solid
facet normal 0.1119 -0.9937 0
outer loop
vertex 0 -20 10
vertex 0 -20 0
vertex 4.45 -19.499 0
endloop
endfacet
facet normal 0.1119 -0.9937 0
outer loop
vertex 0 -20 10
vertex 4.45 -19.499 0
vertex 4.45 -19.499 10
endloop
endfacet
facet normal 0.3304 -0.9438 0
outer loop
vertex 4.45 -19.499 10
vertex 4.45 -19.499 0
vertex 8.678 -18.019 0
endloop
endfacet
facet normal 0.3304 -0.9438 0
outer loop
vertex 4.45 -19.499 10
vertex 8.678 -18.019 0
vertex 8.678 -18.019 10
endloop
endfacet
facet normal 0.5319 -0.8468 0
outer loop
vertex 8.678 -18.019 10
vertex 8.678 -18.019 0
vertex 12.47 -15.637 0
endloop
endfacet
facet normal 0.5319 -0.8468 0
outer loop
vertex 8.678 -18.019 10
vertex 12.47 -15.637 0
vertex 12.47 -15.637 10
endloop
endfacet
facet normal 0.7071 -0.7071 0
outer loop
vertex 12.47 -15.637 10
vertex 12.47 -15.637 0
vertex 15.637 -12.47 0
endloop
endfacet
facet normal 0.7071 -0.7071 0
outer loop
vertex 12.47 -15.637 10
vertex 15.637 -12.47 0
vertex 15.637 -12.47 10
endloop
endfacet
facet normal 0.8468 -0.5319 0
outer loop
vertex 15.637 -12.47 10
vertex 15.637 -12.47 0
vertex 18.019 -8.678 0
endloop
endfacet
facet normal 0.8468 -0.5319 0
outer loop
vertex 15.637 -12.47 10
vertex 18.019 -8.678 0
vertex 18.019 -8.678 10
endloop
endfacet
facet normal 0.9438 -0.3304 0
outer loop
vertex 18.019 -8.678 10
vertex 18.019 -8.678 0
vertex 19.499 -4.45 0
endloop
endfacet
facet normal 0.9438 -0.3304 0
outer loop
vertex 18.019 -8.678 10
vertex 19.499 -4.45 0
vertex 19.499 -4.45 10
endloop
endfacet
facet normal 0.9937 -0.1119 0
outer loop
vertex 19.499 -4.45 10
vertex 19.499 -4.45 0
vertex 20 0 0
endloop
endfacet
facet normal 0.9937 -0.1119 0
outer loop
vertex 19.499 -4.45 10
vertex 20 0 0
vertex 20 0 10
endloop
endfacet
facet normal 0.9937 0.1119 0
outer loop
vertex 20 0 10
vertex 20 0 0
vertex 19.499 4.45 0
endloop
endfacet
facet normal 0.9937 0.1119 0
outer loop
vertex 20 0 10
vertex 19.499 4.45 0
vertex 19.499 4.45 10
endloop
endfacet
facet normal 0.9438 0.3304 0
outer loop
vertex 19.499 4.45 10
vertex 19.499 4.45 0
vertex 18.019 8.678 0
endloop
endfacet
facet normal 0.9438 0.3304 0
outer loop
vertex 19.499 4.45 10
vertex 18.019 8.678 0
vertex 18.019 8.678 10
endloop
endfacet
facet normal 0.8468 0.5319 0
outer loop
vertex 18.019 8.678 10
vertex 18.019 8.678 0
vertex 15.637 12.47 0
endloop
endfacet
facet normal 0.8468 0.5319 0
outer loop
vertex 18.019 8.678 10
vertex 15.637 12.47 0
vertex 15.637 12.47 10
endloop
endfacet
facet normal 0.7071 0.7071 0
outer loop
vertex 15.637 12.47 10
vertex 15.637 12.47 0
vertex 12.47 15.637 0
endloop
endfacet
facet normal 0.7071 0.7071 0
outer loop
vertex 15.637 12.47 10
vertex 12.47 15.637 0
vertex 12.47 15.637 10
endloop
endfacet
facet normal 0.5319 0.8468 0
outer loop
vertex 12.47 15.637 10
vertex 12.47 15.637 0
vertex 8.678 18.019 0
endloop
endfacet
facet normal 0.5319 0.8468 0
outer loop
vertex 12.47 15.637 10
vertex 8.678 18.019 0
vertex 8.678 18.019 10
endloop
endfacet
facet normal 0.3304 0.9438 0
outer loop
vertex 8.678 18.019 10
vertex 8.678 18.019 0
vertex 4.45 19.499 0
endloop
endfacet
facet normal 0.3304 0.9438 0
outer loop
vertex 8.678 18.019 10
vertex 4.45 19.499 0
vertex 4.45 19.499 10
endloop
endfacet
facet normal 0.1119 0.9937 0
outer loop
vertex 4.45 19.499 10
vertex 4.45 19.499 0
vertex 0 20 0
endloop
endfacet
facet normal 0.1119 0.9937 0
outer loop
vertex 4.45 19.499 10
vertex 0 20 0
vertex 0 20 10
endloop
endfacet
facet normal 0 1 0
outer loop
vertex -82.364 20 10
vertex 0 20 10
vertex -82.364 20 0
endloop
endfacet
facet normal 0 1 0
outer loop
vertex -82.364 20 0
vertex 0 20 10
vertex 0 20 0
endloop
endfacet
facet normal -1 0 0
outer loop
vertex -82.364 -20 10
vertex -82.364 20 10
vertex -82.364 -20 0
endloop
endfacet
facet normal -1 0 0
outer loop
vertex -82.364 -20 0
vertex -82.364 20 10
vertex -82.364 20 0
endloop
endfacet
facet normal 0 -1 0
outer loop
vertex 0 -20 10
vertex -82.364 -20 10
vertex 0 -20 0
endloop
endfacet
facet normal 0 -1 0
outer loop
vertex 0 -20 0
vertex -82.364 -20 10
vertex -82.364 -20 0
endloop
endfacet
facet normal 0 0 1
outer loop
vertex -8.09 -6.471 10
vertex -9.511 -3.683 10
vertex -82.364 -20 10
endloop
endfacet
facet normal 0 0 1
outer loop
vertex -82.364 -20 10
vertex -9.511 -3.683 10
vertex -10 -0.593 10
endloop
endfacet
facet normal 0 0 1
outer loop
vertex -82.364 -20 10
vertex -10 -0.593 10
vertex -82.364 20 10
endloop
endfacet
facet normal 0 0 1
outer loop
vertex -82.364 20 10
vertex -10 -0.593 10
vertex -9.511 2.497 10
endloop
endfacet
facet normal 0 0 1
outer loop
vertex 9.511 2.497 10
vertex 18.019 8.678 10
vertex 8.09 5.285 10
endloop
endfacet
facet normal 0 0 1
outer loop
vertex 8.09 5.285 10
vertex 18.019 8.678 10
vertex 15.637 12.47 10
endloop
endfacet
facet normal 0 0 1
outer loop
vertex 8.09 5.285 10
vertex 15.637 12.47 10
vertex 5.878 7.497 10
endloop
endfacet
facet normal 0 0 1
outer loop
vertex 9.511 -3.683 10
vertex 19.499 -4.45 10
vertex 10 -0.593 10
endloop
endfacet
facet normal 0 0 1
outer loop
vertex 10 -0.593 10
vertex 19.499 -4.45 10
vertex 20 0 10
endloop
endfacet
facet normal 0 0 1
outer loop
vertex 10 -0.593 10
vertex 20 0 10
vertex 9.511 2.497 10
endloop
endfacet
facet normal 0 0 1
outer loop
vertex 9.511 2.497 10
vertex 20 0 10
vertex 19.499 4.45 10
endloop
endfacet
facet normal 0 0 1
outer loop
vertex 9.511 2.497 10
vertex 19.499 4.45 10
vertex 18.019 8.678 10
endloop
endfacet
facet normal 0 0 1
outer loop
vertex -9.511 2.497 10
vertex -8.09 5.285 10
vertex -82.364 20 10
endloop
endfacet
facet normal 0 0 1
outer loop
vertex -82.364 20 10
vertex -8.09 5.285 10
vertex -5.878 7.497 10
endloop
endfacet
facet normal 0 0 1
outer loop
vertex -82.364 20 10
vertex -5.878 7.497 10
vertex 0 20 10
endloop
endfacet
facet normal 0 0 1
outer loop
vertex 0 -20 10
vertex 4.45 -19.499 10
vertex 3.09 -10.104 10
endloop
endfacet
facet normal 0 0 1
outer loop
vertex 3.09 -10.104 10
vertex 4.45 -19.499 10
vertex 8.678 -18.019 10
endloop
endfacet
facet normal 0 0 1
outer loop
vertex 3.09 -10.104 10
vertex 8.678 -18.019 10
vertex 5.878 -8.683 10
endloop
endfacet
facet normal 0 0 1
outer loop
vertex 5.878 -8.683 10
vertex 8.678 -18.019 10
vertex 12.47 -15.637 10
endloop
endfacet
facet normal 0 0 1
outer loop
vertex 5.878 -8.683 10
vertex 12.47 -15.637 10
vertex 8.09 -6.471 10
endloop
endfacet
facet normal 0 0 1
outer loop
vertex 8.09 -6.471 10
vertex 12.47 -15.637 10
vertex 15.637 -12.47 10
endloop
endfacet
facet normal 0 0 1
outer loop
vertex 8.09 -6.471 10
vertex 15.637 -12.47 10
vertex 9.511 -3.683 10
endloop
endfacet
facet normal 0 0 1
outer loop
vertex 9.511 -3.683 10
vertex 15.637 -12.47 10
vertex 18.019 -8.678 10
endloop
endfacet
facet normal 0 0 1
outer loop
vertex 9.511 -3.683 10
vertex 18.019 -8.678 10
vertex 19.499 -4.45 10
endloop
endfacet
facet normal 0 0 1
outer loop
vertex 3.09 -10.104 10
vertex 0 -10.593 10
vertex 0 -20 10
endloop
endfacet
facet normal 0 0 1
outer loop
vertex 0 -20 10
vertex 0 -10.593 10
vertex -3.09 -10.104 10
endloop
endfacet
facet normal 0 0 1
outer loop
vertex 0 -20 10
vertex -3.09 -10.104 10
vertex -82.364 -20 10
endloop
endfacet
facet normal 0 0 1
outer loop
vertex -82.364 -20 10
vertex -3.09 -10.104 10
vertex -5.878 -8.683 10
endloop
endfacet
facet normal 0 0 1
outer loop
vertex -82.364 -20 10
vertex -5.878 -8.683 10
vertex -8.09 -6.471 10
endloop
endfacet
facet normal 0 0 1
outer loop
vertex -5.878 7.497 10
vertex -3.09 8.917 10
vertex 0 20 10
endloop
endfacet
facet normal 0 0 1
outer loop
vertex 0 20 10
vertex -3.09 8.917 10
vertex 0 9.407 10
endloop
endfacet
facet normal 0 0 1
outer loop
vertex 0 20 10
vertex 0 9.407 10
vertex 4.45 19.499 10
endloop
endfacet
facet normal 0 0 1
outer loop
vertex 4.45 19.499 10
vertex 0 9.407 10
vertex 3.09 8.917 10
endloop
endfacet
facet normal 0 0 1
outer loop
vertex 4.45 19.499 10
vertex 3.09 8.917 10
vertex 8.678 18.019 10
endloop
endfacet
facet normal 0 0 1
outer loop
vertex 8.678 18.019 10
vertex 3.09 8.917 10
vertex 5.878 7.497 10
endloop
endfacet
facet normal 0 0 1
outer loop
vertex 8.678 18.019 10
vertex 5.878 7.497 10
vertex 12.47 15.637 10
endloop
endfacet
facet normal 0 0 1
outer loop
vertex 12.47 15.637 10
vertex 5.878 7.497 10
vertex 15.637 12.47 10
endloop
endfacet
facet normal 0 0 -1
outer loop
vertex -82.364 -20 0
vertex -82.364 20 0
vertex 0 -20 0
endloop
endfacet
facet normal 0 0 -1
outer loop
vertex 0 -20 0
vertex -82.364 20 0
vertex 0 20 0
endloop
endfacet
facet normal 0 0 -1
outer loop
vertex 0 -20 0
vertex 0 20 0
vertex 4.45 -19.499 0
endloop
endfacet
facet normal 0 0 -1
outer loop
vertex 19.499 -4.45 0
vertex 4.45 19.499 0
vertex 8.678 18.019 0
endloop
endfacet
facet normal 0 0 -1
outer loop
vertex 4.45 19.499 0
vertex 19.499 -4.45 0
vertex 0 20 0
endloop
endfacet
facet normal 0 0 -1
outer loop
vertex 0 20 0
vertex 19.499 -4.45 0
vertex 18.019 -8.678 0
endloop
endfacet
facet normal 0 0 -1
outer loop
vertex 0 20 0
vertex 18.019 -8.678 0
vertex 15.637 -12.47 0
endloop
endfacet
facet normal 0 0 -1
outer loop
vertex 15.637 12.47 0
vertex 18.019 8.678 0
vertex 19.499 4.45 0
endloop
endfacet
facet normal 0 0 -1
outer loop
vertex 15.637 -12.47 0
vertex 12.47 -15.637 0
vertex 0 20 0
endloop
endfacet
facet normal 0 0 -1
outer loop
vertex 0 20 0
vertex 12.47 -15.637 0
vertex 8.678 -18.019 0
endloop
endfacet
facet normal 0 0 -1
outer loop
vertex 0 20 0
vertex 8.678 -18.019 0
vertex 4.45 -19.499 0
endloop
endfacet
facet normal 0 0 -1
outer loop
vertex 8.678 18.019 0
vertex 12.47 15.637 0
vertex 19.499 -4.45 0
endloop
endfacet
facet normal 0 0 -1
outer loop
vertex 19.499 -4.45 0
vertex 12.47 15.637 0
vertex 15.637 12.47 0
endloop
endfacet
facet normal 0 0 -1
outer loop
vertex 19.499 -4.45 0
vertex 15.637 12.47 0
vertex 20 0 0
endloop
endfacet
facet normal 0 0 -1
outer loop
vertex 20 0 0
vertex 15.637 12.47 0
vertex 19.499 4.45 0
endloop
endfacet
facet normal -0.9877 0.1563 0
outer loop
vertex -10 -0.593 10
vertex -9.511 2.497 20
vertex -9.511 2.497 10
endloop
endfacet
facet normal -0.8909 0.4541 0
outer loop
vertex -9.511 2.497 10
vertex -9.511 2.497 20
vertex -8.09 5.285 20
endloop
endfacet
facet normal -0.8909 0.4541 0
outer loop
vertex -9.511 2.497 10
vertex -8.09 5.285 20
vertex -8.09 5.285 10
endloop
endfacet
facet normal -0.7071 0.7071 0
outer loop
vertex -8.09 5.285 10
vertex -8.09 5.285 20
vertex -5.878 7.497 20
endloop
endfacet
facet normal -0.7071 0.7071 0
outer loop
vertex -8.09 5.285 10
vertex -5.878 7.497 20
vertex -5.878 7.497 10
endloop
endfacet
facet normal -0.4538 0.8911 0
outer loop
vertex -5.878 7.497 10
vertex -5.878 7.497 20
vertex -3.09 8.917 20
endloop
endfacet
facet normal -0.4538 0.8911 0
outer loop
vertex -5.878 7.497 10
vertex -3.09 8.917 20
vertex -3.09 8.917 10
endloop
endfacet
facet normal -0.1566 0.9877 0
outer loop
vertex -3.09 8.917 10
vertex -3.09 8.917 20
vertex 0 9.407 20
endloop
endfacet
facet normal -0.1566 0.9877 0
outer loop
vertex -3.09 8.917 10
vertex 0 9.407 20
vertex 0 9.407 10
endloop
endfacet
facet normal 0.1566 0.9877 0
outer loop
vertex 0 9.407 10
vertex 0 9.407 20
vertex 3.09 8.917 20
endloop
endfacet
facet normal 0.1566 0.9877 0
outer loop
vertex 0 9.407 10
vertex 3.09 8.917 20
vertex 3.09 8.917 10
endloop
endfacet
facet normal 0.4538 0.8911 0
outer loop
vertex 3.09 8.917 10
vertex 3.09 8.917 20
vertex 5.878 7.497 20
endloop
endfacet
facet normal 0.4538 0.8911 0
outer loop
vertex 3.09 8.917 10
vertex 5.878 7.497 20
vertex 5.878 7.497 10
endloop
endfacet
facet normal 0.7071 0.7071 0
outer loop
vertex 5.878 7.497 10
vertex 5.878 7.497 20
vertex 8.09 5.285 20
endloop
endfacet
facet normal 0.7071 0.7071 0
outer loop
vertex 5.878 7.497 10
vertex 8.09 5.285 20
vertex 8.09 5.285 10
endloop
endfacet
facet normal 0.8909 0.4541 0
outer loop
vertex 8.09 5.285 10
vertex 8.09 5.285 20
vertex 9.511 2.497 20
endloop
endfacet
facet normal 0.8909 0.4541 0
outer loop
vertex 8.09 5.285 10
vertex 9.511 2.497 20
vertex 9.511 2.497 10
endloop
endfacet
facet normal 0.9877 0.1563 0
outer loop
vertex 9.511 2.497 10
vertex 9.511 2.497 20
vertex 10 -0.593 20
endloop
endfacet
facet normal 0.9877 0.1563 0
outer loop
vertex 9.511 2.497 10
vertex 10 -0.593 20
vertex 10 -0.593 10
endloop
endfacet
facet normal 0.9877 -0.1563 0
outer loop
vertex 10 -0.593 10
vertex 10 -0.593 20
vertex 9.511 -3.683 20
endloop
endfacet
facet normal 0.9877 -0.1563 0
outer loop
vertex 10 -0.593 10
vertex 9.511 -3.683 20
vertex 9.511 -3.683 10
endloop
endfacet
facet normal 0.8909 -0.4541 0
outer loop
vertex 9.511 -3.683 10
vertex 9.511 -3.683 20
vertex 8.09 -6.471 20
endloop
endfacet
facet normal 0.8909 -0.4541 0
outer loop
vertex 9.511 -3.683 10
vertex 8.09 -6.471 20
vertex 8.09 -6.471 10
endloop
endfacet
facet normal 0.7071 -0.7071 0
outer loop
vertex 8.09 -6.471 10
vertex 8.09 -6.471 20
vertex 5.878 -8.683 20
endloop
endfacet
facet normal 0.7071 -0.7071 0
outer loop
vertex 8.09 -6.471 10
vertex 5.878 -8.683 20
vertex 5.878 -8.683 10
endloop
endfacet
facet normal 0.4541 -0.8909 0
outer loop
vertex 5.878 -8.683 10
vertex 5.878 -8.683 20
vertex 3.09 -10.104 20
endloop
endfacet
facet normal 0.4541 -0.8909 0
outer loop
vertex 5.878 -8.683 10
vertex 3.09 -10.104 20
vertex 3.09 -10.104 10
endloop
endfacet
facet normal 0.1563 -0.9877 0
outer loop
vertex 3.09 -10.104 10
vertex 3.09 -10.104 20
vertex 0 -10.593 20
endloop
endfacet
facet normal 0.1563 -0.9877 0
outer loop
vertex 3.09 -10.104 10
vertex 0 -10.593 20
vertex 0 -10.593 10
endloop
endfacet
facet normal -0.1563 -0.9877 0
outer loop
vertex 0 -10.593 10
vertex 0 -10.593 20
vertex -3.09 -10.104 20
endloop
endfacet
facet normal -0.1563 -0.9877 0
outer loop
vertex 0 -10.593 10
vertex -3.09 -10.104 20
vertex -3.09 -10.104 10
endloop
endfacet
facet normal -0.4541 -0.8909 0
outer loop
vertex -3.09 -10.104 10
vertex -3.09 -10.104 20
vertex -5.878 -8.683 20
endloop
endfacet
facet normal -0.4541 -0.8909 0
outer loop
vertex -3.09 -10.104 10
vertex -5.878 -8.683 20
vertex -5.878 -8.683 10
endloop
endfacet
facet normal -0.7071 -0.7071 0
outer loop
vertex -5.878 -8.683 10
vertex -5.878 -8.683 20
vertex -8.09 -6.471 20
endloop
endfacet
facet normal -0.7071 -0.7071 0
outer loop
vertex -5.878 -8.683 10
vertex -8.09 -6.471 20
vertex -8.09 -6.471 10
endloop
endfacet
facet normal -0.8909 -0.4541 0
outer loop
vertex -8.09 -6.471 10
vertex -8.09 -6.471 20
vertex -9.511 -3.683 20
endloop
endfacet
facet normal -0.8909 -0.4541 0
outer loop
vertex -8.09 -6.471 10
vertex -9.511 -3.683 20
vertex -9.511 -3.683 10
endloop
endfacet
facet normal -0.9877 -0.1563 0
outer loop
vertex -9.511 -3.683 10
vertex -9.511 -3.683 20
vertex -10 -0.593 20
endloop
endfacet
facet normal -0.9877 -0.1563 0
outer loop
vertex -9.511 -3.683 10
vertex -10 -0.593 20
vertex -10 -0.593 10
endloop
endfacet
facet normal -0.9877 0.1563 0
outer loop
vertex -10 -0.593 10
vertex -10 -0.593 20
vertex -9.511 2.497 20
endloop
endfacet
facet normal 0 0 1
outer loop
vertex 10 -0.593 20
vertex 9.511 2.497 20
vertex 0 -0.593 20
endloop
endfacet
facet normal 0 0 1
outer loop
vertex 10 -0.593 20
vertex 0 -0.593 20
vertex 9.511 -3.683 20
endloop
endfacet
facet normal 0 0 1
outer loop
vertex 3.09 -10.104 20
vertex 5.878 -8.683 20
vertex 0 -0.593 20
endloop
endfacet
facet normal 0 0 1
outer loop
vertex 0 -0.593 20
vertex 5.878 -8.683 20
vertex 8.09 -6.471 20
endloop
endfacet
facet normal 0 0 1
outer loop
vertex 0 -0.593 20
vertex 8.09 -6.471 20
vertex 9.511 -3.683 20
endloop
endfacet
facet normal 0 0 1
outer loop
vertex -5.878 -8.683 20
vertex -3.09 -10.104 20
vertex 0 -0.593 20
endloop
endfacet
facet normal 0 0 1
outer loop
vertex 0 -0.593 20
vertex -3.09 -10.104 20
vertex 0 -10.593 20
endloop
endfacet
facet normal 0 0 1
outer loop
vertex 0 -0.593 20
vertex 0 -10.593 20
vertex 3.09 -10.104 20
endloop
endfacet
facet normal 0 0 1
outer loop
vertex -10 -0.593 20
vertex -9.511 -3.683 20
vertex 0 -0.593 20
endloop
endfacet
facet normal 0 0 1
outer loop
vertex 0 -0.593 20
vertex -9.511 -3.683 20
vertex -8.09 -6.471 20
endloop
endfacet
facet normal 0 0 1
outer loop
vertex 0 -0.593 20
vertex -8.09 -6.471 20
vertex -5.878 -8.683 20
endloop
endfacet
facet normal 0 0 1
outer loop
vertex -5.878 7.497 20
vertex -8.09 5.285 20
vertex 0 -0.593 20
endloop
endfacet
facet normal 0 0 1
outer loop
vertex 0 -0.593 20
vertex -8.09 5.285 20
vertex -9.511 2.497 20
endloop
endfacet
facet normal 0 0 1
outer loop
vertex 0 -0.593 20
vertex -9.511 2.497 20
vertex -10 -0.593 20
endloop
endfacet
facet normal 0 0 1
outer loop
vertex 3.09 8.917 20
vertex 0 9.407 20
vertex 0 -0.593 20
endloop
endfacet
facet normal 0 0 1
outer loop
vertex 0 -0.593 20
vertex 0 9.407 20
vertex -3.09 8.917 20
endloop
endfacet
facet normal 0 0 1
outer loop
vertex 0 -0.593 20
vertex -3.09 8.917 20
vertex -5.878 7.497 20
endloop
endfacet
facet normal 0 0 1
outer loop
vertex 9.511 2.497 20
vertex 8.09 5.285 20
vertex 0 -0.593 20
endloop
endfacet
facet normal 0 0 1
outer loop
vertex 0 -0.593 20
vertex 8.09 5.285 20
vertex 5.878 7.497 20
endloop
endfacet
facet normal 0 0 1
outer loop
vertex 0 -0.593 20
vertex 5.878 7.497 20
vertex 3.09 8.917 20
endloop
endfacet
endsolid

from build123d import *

# Parameters (mm, degrees)
EXTRUDE_1_DEPTH = 10
SKETCH_2_R      = 10
EXTRUDE_2_DEPTH = 10


with BuildPart() as part:
    # 스케치1 → 보스-돌출1 (new body)
    with BuildSketch(Plane.XY):
        with BuildLine():
            Line((0, 20), (-82.363877474, 20))
            Line((-82.363877474, 20), (-82.363877474, -20))
            Line((-82.363877474, -20), (0, -20))
            ThreePointArc((0, -20), (20, 0), (0, 20))
        make_face()
    extrude(amount=EXTRUDE_1_DEPTH)

    # 스케치2 → 보스-돌출2 (add)
    with BuildSketch(Plane.XY.offset(10)):
        with Locations((0, -0.593223752)):
            Circle(SKETCH_2_R)
    extrude(amount=EXTRUDE_2_DEPTH)


solid = part.part
